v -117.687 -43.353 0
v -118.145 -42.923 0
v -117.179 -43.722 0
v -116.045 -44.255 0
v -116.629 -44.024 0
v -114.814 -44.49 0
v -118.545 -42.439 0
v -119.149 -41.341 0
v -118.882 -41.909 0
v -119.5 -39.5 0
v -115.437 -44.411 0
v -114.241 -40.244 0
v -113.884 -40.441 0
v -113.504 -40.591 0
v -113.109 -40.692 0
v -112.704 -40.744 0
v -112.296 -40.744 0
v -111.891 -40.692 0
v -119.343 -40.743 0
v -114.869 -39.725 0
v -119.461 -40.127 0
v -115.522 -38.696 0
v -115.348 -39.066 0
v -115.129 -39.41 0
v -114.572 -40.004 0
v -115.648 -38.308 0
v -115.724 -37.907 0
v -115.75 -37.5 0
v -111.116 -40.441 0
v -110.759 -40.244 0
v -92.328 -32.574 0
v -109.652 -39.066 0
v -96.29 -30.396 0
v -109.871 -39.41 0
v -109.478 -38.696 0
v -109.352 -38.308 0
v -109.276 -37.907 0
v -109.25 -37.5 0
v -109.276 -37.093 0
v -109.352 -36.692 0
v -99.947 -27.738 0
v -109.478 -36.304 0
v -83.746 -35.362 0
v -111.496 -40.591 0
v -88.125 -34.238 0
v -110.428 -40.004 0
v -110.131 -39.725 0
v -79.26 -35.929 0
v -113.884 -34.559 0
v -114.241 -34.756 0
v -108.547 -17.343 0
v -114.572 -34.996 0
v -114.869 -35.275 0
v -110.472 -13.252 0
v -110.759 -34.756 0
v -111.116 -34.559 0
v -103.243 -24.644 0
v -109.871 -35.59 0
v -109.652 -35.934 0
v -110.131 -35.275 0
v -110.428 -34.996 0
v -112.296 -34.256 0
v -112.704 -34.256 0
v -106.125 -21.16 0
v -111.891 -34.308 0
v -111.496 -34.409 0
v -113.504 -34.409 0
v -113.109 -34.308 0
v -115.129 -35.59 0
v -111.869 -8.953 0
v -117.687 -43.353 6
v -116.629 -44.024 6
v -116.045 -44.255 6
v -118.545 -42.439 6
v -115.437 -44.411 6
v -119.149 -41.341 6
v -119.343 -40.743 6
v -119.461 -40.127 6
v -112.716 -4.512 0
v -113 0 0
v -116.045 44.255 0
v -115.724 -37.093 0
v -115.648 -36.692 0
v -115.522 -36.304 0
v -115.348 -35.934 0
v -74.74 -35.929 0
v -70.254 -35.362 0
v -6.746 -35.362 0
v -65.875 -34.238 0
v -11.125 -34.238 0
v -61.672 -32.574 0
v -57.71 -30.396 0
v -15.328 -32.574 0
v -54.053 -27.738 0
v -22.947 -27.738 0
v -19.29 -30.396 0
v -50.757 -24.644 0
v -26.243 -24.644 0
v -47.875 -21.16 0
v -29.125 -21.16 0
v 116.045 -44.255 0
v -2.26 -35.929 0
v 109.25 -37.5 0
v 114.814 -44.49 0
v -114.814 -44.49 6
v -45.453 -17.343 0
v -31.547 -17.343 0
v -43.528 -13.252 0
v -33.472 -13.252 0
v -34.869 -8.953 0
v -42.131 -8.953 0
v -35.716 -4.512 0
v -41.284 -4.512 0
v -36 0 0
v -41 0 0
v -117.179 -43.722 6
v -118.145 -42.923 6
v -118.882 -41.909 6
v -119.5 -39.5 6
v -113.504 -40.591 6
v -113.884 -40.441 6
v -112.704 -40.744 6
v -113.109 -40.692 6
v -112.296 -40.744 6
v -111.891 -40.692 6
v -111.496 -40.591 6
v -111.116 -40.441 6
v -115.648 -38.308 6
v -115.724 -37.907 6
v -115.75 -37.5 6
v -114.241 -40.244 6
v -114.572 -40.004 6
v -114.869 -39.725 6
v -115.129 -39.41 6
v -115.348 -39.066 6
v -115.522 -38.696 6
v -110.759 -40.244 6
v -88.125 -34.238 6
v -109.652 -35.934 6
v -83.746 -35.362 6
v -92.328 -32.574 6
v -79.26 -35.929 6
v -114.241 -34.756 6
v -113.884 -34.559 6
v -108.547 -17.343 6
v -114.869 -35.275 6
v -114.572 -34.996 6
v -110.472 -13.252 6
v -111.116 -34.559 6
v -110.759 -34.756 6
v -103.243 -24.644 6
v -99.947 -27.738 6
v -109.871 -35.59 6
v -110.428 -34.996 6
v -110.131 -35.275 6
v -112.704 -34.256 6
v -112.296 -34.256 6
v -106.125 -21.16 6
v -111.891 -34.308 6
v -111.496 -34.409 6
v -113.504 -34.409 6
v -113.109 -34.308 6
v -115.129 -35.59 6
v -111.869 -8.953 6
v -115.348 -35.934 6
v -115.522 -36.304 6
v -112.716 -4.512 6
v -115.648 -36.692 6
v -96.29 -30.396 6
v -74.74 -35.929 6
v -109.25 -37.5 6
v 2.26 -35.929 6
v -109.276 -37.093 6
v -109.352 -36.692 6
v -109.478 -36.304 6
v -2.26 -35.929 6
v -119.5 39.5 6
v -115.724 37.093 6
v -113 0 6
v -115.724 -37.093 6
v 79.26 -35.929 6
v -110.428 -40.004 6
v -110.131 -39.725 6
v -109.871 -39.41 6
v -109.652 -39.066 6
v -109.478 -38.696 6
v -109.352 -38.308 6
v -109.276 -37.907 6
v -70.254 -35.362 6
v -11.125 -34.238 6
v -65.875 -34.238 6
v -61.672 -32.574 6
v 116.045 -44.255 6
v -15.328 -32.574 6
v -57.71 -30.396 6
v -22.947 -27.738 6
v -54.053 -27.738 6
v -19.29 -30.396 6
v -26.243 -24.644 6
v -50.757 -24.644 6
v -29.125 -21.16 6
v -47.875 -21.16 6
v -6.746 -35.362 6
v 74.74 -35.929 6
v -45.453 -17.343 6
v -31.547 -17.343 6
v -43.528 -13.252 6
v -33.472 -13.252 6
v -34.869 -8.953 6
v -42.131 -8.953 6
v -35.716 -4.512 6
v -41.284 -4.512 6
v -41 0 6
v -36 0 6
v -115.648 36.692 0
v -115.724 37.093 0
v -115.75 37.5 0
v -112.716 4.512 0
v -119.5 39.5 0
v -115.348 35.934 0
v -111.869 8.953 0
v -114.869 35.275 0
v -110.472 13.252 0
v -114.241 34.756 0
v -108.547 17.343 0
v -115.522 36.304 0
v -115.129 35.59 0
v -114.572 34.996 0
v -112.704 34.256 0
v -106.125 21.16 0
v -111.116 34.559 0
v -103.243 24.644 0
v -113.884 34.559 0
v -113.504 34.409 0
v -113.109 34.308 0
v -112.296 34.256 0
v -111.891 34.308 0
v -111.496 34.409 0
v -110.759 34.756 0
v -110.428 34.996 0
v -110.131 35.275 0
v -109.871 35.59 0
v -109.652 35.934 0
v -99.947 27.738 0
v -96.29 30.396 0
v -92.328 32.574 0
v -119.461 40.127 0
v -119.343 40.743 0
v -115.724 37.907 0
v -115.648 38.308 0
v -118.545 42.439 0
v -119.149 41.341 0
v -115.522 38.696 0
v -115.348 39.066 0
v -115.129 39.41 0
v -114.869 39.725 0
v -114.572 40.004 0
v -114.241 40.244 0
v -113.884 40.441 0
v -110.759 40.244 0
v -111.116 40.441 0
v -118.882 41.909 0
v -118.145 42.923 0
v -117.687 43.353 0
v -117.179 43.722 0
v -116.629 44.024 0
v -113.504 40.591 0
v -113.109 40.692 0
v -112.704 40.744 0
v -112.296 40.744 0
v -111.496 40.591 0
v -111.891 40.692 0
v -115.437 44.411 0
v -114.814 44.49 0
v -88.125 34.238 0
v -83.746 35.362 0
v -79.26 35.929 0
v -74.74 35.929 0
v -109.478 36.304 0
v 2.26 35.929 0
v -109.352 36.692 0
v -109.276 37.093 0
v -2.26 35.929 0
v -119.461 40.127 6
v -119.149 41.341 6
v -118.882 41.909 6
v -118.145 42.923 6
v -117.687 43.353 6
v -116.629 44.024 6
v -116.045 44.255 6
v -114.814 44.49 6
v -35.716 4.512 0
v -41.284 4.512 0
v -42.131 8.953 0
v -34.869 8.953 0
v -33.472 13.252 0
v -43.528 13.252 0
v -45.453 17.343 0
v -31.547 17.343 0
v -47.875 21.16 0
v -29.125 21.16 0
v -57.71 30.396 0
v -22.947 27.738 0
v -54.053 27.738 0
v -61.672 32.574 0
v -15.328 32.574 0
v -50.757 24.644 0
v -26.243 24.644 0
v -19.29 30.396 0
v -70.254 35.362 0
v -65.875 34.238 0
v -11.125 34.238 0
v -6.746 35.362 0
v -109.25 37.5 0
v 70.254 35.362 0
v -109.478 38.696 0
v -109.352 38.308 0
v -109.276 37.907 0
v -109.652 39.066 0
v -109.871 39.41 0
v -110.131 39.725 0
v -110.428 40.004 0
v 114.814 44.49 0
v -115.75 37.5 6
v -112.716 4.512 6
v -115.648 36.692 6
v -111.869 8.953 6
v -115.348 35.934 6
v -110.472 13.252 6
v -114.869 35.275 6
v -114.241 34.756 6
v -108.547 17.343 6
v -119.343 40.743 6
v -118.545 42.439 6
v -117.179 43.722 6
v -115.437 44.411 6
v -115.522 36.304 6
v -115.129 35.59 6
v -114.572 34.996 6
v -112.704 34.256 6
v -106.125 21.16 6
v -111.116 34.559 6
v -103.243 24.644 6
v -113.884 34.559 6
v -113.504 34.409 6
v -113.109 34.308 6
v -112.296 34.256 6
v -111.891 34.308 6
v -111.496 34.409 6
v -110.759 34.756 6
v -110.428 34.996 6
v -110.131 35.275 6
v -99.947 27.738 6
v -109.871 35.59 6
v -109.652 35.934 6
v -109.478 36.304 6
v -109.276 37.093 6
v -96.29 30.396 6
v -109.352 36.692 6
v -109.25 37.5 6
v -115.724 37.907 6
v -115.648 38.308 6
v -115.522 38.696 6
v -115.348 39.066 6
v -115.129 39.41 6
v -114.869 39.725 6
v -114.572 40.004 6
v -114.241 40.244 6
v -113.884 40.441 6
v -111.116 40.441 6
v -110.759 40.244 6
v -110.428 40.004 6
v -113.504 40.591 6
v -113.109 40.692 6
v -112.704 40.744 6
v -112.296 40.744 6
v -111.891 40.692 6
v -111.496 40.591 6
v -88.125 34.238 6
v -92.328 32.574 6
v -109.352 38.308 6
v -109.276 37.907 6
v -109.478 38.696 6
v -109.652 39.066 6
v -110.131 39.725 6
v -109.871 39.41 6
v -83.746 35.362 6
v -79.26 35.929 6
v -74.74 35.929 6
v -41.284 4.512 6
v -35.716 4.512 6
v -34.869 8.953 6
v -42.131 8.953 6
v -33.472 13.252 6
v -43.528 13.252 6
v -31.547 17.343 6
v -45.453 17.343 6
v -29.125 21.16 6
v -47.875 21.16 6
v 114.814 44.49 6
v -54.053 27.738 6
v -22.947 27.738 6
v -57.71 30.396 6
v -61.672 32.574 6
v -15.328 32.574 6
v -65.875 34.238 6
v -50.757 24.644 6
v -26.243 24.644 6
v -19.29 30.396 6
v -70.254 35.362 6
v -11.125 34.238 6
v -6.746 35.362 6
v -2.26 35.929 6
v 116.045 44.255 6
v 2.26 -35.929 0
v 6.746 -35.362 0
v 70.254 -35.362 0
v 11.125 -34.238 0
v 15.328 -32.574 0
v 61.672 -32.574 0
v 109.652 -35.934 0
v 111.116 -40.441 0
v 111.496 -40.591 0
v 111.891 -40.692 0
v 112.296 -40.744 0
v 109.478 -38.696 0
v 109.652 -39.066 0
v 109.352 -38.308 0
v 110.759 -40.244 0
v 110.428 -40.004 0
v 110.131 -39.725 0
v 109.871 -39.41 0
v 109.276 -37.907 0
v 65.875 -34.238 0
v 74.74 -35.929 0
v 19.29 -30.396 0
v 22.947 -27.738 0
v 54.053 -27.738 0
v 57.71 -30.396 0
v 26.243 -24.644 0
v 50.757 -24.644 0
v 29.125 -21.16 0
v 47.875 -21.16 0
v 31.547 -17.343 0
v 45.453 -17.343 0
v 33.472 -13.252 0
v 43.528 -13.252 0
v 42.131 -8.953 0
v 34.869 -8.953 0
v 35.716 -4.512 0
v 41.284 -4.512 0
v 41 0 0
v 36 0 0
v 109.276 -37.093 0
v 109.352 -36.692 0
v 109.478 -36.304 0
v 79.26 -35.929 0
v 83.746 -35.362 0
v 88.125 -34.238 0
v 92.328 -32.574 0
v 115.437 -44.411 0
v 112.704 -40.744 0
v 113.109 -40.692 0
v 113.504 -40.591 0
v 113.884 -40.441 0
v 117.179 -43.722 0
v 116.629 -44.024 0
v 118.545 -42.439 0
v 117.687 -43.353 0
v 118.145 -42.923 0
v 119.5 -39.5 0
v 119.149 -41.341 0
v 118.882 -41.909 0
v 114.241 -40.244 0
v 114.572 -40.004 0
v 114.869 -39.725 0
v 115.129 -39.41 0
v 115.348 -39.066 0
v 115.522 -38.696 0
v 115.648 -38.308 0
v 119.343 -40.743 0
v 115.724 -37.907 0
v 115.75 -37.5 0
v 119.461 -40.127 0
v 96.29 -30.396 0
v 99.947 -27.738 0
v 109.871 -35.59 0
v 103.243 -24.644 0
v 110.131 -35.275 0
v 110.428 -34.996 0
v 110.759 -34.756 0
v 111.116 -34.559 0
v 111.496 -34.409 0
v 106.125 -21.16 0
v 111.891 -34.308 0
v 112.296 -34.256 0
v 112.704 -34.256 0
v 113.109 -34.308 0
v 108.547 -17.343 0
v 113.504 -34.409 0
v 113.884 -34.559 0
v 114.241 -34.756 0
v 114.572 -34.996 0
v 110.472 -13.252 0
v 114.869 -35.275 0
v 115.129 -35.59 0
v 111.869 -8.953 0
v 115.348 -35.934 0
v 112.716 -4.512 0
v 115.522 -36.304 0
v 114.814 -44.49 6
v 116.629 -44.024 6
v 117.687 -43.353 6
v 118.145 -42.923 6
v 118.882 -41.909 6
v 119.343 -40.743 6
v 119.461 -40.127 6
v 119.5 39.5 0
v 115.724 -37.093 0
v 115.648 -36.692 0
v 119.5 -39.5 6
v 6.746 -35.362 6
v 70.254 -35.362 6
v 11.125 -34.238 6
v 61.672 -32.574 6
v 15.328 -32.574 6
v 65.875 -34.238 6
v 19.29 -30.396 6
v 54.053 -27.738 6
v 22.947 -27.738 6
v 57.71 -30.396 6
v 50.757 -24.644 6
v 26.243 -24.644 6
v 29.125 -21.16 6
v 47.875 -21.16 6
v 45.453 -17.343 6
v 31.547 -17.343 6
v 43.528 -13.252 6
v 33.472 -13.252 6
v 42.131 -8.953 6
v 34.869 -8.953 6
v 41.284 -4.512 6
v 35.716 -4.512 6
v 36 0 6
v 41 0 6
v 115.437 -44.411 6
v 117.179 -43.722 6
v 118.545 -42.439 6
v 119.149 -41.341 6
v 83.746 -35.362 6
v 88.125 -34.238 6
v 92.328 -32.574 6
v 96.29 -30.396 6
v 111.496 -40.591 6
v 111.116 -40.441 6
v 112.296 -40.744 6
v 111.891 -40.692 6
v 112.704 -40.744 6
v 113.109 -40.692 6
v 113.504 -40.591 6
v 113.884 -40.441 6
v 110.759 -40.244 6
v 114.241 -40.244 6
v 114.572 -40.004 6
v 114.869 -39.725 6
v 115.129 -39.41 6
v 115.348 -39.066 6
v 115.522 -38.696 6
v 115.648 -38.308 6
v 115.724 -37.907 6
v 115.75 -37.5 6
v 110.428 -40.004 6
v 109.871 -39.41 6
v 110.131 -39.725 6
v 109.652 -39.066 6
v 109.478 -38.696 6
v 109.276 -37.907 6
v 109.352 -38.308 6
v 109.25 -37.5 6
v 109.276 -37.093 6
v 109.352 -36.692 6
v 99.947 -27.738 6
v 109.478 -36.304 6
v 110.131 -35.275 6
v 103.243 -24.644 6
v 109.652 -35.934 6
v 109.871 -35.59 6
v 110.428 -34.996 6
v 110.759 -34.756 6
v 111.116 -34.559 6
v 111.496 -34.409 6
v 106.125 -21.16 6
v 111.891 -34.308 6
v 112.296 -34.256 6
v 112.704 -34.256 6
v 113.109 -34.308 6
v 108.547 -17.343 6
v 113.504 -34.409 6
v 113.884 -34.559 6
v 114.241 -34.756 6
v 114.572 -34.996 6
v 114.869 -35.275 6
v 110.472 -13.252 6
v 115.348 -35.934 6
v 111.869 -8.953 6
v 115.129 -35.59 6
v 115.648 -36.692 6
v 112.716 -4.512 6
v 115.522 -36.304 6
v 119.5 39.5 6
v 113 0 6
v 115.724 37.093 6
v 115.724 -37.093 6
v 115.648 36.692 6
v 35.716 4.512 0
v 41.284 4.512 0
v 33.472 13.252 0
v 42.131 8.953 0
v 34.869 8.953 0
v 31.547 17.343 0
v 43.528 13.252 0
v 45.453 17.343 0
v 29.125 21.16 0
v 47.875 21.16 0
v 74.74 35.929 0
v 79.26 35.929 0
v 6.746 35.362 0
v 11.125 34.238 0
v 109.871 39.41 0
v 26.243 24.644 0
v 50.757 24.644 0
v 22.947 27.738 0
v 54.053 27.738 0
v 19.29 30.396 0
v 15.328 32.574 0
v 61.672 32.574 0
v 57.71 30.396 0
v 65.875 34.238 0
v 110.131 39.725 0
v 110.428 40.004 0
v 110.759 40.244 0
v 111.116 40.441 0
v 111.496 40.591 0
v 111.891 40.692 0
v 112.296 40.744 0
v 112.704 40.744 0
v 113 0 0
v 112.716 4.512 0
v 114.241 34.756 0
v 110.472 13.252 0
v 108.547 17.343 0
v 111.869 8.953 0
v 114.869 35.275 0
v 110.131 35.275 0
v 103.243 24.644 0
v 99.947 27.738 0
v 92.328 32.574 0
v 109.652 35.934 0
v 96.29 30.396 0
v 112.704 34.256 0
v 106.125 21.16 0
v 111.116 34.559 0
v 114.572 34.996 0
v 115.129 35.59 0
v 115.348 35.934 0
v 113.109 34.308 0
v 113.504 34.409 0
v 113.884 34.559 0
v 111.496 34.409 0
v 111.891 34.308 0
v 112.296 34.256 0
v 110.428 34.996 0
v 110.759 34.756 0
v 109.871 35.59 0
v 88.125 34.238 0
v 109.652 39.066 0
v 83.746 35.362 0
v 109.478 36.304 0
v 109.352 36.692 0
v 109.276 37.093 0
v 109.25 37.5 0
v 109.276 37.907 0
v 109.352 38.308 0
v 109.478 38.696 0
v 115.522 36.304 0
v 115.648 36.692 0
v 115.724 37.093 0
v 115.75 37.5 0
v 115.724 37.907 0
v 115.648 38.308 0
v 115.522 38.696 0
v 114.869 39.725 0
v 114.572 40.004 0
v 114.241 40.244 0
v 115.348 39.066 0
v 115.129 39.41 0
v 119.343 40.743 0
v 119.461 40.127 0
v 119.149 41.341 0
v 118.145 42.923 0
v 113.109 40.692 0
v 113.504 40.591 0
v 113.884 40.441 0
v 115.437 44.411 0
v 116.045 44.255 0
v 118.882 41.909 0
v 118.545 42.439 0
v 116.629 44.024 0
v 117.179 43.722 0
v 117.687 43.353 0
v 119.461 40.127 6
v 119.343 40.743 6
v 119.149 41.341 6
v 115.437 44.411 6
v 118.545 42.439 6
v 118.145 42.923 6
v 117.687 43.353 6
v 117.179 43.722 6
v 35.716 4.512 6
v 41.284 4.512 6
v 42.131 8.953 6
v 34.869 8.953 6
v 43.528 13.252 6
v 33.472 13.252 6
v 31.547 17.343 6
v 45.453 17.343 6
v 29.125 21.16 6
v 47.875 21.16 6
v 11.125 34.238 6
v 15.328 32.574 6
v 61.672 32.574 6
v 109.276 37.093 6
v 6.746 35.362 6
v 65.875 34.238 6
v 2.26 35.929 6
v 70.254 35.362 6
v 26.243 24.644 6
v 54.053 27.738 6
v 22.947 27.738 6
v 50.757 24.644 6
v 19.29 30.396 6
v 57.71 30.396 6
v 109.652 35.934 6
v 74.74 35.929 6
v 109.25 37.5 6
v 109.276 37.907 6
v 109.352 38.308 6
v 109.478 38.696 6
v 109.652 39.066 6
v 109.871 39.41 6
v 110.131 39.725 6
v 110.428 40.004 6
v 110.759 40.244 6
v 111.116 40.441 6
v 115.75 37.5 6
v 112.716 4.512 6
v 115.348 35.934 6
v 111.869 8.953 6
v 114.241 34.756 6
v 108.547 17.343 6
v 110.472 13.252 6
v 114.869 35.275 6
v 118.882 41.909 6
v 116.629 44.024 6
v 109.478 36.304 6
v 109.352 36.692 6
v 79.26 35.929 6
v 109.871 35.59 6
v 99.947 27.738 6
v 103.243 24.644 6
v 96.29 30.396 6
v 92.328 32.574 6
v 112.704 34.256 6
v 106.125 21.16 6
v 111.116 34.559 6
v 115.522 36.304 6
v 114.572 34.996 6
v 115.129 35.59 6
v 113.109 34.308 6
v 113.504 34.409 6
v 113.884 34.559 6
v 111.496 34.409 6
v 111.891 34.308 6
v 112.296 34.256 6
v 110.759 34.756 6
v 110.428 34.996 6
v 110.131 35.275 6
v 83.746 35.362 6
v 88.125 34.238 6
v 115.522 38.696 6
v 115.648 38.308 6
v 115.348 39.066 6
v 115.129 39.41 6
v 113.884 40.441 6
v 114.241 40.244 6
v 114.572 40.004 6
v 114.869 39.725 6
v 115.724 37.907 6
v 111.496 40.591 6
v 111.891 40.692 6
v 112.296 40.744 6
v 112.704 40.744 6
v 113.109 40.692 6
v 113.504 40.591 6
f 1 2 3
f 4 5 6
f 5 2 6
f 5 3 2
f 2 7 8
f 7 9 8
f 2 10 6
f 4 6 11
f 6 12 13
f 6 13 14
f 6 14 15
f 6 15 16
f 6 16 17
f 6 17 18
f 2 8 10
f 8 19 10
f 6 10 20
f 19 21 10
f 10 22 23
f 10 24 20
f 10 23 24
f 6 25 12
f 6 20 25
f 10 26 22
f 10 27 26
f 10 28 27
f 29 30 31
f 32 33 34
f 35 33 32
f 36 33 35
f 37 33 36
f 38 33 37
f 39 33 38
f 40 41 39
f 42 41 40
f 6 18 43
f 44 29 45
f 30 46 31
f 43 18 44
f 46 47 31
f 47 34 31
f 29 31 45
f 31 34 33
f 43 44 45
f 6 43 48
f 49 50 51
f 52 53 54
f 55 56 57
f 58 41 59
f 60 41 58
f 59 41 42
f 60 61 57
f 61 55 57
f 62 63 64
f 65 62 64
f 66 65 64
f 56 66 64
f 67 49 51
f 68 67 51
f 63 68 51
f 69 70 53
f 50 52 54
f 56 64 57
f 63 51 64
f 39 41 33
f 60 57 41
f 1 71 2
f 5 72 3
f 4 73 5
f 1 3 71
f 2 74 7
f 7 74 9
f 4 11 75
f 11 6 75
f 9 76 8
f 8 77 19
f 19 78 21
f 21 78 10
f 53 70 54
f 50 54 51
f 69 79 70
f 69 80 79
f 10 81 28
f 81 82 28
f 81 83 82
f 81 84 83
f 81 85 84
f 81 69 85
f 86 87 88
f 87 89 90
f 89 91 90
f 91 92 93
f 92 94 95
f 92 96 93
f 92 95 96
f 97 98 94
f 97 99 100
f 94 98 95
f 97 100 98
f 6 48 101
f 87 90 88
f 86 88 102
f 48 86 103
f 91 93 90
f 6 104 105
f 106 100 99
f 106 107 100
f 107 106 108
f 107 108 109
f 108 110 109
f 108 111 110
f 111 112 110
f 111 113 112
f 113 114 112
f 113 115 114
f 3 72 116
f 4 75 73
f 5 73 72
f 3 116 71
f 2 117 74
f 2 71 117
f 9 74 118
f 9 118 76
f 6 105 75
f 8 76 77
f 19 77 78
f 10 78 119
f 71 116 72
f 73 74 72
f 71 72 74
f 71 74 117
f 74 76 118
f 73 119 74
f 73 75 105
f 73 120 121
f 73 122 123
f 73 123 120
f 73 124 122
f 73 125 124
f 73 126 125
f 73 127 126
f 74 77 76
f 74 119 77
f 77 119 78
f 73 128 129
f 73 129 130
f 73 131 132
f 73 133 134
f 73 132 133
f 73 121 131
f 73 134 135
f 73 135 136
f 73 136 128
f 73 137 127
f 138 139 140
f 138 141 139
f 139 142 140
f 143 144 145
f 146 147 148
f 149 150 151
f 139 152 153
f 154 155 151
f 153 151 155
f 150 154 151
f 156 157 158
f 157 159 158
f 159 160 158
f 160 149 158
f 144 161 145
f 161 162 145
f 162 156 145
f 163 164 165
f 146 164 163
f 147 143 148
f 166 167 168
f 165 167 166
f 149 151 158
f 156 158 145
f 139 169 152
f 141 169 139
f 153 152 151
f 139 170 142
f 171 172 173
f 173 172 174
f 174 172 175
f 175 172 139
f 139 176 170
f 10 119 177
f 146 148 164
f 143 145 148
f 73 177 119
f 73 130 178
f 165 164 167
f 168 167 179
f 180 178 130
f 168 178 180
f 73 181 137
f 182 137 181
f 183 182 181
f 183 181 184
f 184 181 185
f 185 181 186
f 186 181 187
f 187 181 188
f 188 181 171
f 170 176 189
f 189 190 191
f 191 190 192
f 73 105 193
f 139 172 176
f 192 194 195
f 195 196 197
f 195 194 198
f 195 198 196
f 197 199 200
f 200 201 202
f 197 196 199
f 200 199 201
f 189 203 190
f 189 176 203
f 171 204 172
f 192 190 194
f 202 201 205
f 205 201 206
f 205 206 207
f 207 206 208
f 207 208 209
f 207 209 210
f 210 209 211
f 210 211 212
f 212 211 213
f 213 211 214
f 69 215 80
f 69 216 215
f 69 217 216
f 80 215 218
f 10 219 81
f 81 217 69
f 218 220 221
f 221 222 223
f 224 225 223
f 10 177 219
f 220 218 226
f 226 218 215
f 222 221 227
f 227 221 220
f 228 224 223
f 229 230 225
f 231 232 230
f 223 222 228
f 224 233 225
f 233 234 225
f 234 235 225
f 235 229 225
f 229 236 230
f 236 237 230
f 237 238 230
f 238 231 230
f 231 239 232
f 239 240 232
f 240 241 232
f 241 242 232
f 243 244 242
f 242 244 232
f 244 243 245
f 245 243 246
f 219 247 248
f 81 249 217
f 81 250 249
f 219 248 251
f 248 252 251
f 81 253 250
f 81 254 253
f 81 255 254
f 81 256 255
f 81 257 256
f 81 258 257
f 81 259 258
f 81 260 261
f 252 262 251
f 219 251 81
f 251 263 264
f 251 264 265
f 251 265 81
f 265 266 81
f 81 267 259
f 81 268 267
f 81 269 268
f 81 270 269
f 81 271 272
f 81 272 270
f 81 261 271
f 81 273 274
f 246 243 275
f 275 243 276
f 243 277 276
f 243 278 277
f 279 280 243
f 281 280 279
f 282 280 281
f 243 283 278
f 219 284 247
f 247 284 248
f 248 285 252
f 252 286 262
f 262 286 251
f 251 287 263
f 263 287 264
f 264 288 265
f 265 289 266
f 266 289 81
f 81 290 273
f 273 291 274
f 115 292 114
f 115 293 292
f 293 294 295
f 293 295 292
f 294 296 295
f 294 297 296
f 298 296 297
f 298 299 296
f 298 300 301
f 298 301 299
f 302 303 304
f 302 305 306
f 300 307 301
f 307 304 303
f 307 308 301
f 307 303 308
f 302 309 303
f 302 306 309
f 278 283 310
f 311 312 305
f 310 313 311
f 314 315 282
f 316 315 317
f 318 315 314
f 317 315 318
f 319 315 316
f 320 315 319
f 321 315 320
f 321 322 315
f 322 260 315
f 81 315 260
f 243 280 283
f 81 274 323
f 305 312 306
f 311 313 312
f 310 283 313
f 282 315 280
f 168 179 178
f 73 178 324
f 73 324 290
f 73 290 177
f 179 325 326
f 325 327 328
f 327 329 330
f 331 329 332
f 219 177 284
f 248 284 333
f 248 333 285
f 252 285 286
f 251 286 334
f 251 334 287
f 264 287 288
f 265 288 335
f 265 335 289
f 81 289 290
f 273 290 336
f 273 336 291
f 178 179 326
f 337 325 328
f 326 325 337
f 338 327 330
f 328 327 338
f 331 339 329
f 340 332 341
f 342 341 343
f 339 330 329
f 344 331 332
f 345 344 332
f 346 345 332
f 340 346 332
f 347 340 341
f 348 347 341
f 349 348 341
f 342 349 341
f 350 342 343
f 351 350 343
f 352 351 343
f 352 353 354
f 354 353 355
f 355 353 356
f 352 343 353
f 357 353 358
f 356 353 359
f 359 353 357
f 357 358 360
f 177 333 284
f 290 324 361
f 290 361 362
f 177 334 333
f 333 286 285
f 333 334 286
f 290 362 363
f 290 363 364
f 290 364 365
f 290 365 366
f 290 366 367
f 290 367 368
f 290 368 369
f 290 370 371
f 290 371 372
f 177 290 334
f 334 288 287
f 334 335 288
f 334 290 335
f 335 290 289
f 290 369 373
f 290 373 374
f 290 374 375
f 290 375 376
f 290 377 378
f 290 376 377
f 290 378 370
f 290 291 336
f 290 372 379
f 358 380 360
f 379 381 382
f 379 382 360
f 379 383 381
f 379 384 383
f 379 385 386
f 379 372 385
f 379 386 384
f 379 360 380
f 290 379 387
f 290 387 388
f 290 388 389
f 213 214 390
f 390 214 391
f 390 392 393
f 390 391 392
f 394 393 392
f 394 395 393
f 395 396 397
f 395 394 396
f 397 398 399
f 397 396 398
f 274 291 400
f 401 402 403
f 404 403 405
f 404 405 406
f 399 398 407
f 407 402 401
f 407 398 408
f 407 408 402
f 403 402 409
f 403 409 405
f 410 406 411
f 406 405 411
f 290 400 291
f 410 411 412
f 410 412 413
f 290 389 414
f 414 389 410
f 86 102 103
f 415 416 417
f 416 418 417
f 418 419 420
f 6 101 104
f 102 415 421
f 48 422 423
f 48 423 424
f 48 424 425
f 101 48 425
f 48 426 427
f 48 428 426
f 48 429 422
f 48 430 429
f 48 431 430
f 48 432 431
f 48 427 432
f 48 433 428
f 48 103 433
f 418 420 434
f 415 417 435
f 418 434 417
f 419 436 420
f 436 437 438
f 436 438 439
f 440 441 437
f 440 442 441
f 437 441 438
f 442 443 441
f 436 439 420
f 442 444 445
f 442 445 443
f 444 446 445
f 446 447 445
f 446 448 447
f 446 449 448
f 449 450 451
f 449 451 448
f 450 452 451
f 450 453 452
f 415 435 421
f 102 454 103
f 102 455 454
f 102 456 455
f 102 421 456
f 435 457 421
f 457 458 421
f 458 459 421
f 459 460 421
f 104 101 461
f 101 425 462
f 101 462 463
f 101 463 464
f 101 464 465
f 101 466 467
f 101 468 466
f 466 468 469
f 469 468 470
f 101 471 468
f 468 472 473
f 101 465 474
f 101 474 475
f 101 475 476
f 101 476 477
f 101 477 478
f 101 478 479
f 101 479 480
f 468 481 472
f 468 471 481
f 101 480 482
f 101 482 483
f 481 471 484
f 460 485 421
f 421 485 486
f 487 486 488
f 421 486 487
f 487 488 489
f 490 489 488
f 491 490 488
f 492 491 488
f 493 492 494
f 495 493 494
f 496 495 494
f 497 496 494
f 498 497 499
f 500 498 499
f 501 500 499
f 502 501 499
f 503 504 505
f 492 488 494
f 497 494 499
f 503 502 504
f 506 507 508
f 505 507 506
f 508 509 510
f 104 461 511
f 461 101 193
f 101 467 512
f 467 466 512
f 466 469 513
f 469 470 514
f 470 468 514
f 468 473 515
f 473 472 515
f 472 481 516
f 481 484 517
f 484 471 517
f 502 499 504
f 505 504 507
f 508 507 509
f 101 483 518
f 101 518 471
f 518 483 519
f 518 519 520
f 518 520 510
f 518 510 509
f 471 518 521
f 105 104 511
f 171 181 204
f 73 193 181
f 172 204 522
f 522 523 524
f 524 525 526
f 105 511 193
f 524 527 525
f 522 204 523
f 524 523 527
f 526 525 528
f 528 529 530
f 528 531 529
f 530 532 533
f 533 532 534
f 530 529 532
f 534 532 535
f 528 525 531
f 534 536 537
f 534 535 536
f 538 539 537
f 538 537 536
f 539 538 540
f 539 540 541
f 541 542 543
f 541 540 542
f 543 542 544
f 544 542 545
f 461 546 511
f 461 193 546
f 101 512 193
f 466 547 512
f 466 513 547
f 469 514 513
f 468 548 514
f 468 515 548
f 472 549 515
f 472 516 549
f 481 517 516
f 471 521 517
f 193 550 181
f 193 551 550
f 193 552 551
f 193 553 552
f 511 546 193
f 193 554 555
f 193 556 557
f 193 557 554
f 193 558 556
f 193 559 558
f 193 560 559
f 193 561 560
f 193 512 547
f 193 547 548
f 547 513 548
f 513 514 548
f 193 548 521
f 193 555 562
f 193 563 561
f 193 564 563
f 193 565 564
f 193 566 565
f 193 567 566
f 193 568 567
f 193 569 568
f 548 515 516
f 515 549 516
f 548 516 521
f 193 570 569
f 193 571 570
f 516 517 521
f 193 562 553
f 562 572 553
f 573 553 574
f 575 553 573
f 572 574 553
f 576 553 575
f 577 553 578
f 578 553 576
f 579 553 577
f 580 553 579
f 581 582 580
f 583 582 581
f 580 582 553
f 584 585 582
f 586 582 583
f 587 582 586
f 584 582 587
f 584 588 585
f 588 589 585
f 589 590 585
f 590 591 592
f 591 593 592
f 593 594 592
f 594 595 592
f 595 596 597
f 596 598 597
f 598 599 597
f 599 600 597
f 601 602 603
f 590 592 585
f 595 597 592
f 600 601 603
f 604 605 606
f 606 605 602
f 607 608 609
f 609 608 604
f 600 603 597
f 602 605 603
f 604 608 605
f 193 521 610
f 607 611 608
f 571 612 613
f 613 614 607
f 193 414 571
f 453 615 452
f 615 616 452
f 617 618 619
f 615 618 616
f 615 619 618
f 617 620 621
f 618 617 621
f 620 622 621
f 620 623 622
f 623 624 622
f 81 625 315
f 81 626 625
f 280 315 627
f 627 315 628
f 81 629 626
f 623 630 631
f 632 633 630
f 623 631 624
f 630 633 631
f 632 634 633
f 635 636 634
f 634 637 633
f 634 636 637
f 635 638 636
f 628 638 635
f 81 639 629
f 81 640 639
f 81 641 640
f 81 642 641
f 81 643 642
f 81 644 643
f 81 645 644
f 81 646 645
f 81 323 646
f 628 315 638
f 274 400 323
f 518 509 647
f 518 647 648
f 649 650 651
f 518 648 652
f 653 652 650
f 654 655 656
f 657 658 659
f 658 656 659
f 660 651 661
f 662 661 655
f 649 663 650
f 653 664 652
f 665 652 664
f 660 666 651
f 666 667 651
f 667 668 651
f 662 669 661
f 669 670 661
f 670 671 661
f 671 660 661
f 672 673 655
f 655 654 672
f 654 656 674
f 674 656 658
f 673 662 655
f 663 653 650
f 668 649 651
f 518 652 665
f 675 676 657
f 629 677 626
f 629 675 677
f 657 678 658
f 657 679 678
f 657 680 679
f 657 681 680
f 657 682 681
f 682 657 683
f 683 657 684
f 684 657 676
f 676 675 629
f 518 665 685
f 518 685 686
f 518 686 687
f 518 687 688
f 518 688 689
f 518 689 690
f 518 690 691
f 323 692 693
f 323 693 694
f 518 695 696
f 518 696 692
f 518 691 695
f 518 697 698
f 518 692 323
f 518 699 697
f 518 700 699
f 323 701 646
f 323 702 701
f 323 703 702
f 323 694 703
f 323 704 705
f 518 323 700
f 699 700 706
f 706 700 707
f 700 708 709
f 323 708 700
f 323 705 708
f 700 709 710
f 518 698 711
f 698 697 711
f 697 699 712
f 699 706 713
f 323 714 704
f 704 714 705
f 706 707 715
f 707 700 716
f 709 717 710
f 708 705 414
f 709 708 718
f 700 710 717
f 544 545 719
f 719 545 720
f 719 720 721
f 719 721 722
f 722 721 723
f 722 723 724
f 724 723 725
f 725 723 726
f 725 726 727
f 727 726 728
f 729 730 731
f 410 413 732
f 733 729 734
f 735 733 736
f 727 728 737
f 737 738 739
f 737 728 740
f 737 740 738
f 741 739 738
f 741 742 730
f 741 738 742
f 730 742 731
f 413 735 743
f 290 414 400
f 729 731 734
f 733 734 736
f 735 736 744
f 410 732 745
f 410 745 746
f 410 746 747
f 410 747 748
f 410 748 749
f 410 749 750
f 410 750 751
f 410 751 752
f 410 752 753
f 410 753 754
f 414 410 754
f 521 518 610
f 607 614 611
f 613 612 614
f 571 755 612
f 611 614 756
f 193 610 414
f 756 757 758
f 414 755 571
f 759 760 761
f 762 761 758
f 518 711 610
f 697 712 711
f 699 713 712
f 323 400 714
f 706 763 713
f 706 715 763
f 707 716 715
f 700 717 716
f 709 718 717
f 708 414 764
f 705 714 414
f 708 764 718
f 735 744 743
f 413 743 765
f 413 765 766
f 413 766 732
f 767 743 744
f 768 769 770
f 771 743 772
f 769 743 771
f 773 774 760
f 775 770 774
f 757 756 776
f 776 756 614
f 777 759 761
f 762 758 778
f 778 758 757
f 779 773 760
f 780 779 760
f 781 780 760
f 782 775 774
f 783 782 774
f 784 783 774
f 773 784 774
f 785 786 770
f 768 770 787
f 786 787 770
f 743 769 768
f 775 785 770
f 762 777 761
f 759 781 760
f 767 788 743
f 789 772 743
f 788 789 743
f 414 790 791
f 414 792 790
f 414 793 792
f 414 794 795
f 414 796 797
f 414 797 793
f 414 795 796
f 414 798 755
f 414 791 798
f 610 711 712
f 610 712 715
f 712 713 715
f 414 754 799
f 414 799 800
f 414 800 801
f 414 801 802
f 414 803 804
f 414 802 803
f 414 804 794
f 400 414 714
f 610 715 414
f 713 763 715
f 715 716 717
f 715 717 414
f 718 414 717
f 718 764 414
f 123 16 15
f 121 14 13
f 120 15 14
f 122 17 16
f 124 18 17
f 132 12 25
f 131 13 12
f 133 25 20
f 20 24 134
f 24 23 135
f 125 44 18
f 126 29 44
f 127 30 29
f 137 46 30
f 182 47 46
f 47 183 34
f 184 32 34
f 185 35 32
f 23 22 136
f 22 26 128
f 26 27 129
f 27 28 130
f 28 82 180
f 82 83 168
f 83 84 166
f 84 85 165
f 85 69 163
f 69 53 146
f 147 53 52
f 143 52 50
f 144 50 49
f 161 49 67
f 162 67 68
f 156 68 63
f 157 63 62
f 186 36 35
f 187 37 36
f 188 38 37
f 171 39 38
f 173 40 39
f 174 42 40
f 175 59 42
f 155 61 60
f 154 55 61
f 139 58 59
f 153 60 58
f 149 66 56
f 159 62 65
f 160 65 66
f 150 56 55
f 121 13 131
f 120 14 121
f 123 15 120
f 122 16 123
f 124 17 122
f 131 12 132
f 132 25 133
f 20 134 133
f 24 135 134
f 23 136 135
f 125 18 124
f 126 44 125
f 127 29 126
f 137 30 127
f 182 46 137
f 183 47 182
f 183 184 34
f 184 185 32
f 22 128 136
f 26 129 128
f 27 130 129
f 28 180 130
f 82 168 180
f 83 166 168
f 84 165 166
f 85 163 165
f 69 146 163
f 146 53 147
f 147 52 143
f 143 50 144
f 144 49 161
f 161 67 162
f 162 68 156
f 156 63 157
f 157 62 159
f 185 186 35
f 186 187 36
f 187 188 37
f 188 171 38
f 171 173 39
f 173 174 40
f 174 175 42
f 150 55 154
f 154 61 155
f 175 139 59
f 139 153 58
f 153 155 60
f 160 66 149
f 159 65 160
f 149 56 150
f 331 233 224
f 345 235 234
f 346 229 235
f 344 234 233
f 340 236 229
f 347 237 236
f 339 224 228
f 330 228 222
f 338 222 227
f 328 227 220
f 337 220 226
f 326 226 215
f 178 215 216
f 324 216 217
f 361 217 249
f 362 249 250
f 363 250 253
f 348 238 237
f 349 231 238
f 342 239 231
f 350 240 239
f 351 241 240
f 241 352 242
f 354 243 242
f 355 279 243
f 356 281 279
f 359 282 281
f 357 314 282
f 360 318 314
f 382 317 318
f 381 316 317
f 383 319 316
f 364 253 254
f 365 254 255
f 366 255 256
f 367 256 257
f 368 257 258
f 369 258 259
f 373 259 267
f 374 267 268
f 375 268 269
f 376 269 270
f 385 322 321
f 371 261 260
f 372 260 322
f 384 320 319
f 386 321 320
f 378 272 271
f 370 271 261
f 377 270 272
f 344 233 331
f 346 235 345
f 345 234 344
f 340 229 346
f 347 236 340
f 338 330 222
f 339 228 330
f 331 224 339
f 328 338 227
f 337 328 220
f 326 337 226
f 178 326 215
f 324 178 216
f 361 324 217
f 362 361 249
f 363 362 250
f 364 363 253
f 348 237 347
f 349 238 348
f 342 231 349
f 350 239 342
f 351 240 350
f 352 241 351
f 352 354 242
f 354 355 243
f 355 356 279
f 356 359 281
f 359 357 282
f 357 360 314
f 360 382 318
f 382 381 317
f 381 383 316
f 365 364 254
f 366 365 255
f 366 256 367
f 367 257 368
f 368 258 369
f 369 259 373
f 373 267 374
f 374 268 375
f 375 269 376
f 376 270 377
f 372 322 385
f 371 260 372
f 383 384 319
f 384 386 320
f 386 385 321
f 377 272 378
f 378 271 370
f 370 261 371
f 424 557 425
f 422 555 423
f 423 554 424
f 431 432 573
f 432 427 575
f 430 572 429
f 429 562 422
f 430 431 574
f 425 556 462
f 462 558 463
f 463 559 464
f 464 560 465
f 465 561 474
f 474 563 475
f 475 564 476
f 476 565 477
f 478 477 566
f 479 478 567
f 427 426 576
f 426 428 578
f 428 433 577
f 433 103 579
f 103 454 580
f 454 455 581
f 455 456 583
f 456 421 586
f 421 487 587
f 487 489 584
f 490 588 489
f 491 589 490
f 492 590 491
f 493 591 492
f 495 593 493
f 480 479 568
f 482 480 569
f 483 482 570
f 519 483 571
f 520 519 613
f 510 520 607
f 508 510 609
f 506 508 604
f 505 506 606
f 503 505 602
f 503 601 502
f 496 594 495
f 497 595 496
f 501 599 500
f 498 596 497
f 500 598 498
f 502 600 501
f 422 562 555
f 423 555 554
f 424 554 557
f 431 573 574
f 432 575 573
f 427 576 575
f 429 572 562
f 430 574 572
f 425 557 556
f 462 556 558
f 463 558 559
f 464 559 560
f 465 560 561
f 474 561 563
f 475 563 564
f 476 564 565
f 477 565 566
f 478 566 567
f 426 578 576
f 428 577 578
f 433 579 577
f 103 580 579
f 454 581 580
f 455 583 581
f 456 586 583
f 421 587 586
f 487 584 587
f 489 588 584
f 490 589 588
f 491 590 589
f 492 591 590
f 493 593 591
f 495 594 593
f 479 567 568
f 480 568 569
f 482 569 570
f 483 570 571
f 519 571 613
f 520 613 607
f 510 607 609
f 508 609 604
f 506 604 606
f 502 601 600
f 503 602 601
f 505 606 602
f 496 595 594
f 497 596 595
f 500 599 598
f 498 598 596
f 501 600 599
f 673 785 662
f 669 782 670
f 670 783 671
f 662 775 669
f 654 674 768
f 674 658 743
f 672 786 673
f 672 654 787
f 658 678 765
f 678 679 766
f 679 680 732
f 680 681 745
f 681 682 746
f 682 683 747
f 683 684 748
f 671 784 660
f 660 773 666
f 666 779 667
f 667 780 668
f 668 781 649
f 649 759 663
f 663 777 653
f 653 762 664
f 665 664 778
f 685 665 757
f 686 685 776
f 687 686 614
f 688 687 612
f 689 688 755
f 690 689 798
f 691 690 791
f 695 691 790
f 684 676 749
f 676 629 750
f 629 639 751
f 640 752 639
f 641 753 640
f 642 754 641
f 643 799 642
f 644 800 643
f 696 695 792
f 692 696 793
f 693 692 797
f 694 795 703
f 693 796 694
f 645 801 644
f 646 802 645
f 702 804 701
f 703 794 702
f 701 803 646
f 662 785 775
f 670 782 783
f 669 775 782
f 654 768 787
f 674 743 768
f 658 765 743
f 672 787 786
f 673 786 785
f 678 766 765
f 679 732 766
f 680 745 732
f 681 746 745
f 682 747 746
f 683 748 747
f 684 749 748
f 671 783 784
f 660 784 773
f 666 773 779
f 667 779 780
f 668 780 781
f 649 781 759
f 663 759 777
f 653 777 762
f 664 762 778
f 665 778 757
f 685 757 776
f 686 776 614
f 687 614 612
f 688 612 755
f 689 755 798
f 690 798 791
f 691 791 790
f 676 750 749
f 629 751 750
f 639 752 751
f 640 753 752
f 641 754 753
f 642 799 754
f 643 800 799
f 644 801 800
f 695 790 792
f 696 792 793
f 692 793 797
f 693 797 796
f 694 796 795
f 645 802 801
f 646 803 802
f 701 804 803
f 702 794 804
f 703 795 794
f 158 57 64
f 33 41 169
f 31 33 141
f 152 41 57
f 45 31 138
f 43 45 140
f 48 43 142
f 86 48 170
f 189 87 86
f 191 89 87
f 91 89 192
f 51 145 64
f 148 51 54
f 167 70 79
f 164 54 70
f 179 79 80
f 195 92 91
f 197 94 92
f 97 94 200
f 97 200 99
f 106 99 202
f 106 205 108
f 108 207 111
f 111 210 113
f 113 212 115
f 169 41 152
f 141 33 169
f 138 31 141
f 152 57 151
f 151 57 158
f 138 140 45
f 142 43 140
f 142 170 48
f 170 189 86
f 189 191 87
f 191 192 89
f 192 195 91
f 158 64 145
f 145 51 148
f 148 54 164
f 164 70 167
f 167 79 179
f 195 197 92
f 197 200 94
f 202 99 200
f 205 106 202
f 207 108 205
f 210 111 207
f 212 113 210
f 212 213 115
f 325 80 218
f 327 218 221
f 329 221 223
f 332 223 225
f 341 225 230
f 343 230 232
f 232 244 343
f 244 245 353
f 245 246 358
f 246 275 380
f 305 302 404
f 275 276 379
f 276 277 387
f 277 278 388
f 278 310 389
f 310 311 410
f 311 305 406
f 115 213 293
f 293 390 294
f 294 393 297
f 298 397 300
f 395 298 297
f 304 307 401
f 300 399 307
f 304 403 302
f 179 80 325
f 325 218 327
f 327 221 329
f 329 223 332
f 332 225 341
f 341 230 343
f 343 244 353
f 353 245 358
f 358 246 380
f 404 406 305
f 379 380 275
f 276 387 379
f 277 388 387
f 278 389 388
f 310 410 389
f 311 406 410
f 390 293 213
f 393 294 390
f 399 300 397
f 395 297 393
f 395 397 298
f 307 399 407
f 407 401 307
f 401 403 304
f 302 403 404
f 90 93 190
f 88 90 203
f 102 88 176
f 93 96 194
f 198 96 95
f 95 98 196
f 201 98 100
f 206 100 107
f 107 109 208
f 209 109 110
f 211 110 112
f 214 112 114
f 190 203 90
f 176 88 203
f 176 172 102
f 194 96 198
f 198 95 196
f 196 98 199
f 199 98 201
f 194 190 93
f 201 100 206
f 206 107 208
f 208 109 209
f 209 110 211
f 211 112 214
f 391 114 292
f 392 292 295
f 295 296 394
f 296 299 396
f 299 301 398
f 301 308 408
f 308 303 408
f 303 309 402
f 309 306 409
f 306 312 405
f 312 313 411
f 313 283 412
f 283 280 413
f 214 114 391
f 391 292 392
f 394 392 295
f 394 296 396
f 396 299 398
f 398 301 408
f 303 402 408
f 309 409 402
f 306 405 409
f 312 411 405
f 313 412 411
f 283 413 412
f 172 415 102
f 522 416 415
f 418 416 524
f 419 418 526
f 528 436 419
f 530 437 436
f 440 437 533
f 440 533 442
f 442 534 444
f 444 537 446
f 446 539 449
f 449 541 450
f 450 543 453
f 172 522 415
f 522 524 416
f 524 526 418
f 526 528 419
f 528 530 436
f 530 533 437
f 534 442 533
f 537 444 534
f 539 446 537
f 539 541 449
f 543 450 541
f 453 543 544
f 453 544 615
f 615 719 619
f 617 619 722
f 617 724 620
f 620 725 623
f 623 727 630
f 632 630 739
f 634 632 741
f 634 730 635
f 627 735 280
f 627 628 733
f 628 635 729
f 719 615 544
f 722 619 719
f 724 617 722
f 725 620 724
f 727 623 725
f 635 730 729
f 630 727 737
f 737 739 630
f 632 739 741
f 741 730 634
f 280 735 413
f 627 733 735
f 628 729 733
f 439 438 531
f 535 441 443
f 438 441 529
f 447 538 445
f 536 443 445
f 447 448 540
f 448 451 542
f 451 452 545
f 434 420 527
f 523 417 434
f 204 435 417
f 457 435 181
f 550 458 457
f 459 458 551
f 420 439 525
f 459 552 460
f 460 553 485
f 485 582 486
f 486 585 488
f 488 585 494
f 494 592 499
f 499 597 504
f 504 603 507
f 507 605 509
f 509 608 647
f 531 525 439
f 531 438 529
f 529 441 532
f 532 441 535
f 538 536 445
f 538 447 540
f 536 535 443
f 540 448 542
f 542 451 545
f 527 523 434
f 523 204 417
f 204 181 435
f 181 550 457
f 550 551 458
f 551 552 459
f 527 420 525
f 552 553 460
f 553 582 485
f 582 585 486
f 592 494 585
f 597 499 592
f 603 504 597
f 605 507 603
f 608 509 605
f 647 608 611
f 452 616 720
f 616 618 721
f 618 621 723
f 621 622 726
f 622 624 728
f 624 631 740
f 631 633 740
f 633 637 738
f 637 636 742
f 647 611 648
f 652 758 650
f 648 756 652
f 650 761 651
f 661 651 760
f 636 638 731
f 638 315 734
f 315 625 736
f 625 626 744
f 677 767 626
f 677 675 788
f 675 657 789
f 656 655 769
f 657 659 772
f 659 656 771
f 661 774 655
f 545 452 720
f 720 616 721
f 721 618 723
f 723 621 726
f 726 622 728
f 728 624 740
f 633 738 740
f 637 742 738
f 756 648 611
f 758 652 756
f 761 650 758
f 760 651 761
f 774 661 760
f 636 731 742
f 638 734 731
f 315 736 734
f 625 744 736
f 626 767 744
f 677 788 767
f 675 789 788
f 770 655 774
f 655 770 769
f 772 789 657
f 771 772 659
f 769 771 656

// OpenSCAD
$fn = 50;

difference() {
	union() {
		hull() {
			translate(v = [-114.5, 39.5, 0]) {
				cylinder(h = 6, r = 5);
			}
			translate(v = [114.5, 39.5, 0]) {
				cylinder(h = 6, r = 5);
			}
			translate(v = [-114.5, -39.5, 0]) {
				cylinder(h = 6, r = 5);
			}
			translate(v = [114.5, -39.5, 0]) {
				cylinder(h = 6, r = 5);
			}
		}
	}
	union() {
		translate(v = [-112.5, -37.5, -100.0]) {
			cylinder(h = 200, r = 3.25);
		}
		translate(v = [-112.5, 37.5, -100.0]) {
			cylinder(h = 200, r = 3.25);
		}
		translate(v = [112.5, -37.5, -100.0]) {
			cylinder(h = 200, r = 3.25);
		}
		translate(v = [112.5, 37.5, -100.0]) {
			cylinder(h = 200, r = 3.25);
		}
		translate(v = [-112.5, -37.5, -100.0]) {
			cylinder(h = 200, r = 1.8);
		}
		translate(v = [-112.5, 37.5, -100.0]) {
			cylinder(h = 200, r = 1.8);
		}
		translate(v = [112.5, -37.5, -100.0]) {
			cylinder(h = 200, r = 1.8);
		}
		translate(v = [112.5, 37.5, -100.0]) {
			cylinder(h = 200, r = 1.8);
		}
		translate(v = [-77.0, 0, 0.0]) {
			cylinder(h = 6, r = 36.0);
		}
		cylinder(h = 6, r = 36.0);
		translate(v = [77.0, 0, 0.0]) {
			cylinder(h = 6, r = 36.0);
		}
	}
}
